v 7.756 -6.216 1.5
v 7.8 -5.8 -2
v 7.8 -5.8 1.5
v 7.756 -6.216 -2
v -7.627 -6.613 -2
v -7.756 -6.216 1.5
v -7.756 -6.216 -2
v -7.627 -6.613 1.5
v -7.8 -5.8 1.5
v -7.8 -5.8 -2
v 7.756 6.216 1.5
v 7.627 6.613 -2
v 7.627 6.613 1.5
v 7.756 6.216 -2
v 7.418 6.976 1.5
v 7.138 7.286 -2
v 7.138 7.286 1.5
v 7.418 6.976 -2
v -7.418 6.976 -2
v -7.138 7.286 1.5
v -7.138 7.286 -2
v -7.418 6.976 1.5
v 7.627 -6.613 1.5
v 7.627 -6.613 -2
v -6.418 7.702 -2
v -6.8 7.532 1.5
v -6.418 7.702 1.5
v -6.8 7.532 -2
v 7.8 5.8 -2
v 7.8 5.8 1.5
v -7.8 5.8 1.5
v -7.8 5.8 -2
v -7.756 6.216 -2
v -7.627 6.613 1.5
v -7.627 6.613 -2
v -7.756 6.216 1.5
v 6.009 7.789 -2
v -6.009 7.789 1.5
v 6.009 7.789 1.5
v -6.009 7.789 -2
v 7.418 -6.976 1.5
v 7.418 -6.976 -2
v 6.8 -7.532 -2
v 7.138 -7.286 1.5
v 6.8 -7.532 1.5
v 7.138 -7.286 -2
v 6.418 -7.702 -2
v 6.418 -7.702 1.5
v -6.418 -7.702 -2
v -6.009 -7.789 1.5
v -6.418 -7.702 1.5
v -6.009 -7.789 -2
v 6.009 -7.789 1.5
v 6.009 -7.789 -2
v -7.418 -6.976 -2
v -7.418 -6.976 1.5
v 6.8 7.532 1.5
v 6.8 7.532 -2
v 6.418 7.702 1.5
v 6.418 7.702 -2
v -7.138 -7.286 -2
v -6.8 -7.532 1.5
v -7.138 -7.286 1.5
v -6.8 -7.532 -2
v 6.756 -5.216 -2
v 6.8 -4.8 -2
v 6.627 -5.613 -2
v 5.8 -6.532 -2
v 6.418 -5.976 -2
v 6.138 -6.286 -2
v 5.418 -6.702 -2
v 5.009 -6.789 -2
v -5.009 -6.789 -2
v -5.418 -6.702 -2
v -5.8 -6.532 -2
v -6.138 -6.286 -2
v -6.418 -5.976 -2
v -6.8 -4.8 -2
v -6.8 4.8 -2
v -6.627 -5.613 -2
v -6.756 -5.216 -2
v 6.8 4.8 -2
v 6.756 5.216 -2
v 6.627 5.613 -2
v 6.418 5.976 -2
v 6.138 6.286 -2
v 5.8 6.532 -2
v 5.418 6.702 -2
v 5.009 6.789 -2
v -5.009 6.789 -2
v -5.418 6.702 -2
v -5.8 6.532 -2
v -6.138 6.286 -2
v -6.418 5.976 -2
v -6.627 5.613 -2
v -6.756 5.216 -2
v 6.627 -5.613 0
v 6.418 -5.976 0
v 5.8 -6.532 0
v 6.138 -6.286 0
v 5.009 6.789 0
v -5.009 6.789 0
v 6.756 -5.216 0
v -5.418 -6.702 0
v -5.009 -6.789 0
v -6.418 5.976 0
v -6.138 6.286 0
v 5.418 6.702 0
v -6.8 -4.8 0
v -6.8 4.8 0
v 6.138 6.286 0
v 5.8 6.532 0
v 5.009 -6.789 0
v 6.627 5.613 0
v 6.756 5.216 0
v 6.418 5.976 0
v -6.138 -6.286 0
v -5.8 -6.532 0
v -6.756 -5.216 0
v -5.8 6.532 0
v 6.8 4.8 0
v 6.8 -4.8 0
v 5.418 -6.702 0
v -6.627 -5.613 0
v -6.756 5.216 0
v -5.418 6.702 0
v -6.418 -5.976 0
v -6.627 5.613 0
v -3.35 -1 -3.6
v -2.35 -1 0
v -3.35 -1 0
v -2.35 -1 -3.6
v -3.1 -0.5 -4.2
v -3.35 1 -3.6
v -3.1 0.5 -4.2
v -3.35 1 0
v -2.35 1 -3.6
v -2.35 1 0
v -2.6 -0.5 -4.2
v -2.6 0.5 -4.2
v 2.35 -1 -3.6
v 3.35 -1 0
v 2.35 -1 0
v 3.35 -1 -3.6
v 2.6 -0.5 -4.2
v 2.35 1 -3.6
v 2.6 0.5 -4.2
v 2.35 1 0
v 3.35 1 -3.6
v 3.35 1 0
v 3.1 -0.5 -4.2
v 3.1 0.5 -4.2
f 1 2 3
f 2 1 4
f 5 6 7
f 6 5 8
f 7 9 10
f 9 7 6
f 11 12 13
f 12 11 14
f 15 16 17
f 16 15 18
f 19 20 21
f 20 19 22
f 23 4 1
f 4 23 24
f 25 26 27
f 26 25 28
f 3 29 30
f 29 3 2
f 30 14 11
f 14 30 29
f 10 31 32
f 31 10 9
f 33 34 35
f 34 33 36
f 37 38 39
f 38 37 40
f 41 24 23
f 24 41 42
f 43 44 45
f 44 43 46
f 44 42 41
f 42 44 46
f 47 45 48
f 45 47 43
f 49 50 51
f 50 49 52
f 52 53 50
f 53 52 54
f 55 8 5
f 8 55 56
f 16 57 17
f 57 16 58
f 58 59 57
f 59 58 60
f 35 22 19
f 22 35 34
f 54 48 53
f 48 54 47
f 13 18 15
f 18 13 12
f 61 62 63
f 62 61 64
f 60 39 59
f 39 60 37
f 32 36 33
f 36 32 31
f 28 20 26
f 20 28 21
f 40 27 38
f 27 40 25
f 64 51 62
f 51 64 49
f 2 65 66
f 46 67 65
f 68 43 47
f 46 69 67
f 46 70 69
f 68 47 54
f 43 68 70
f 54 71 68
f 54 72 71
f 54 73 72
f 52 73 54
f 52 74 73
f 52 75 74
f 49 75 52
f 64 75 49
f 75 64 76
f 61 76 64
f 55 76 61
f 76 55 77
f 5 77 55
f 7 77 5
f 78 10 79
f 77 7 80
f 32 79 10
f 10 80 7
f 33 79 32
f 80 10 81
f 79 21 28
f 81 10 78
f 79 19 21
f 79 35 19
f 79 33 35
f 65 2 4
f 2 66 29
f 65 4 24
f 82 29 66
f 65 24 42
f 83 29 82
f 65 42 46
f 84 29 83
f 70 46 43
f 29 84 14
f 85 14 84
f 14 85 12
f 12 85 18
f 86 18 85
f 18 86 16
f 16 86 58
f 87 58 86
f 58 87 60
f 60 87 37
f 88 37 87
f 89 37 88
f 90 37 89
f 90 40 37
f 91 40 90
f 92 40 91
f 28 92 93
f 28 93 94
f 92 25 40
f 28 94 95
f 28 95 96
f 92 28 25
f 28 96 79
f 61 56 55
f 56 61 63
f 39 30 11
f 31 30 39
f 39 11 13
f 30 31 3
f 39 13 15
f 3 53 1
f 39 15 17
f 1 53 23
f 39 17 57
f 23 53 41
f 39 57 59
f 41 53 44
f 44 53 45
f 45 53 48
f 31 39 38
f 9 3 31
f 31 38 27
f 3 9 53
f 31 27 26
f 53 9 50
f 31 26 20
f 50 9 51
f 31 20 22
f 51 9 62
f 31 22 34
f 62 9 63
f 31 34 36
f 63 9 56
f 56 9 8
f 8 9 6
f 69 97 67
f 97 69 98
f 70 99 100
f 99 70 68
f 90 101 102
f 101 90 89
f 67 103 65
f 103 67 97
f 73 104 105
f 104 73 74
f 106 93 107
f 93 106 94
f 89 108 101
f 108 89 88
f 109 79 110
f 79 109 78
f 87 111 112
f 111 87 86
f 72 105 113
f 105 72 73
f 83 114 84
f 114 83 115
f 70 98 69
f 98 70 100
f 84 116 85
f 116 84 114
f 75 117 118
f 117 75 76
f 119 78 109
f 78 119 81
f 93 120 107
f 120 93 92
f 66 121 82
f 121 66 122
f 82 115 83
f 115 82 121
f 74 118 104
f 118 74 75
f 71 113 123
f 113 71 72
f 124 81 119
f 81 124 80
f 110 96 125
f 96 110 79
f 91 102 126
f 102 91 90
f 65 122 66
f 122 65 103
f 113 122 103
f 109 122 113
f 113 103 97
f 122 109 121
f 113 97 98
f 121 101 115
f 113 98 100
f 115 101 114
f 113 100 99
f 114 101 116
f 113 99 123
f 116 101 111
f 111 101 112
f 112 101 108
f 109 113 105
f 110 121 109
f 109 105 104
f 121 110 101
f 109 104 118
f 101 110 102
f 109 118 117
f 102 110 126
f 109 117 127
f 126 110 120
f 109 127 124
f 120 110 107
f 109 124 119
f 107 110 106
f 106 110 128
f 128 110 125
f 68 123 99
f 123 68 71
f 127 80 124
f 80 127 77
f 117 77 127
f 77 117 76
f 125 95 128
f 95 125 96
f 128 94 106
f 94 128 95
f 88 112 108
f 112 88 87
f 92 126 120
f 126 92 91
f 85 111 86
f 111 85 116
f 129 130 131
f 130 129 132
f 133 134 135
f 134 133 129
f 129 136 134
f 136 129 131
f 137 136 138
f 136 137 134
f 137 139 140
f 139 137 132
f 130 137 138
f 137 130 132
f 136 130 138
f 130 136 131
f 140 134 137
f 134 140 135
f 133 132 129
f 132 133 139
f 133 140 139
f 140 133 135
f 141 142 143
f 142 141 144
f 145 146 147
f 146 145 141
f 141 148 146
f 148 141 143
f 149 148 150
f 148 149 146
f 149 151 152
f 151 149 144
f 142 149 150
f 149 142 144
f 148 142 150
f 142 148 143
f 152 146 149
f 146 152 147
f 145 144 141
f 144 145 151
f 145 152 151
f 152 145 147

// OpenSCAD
// file: ../../lib/utils.scad
// 角丸のプレート
module rounded_plate(x, y, r) {
  thickness = 0.0001;
  minkowski () {
    cube([x-r*2, y-r*2, thickness], center = true);
    cylinder(r = r, h = thickness, $fs = 0.1);
  }
}

// ベーシックなキーキャップの外観を定義
module keycap_basic_outer_shape(bottom_size, middle_size, top_size, top_height, skert_height, side_r) {
  hull () {
    translate([0, 0, top_height])
    rounded_plate(top_size, top_size, side_r);
    
    if(middle_size > 0) {
      translate([0, 0, 0])
      rounded_plate(middle_size, middle_size, side_r);
    }
    
    translate([0, 0, -skert_height])
    rounded_plate(bottom_size, bottom_size, side_r);
  }
}

// chocで使われる一般的なキーキャップの形状を定義
module keycap_basic_shape(
  top_size,
  head_height,
  middle_size,
  skert_height,
  bottom_size,
  thickness = 1.0,
  side_r = 1.0) {
  difference () {
    // 外形
    keycap_basic_outer_shape(bottom_size, middle_size, top_size, head_height, skert_height, side_r);
    // くり抜くための外形
    keycap_basic_outer_shape(bottom_size - thickness * 2, middle_size - thickness * 2, top_size - thickness * 2, 0, skert_height+0.005, side_r);
  }
}


// cylindricalな凹みを作る
module head_cylindrical_depress(top_size, top_height, depth) {
  function dish_r(w, d) = (w * w + 4 * d * d) / (8 * d);
  
  hull() {
    angle = 0;
    translate([0, 0, top_height]);
    rotate([- angle, 0, 0])
    translate([0, 0, dish_r(top_size, depth) - depth+top_height])
    rotate([90, 0, 0])
    cylinder(r = dish_r(top_size, depth), h = 60, /* 適当に十分な長さ */ center = true);
  }
}

// Generate dome sphere object
// calc r parameter on https://gist.github.com/masuidrive/b34472d82b07d0efead83aedf5579b78
module dome(width, height, r=0) {
  calc_width = 2 * sqrt(r^2 - (r - height)^2);

  if(abs(width - calc_width) > 0.1) {
    echo("><><><><><><><><><><");
    echo("WARNING: dome arguments are not correct, should be width ", calc_width);
  }

  difference(){
    translate([0, 0, height-r])
      sphere(r = r, $fn = 100);
    translate([0, 0, -r])
      cube([r*2, r*2, r*2], center = true);
  }
}

// https://qiita.com/zk_phi/items/ab99315ebaef66e84aa0
// https://bebebe.hatenablog.jp/entry/2019/06/04/232501
// https://qiita.com/zk_phi/items/ab99315ebaef66e84aa0
// file: ../../lib/choc.scad
// ChocV1の足を作る
module kailh_choc_v1_stem() {
  leg_length = 3.6;
  thin_length = 0.6;

  for (z = [-2.85, 2.85]) {
      translate([z, 0, -leg_length/2])
        hull() {
          cube([1, 2, leg_length], center=true);
          translate([0, 0, -(leg_length/2)-thin_length])
            cube([0.5, 1, 0.001], center=true);
        };
  }
}


module preview_chocv1_switch(DEBUG=true) {
  union() {
    children();

    if(DEBUG == true || DEBUG == "x") {
      translate([20, 20, 0])
      difference() {
        union() {
          children();
          difference() {
            translate([0, 0, -3.35]) import("../lib/choc_v1_switch.stl", convexity=2);
            translate([-10, -10, 0]) cube([20, 20, 20]);
          }
        }
        translate([-10, 0, -10]) cube([20, 20, 20]);
      }
    }

    if(DEBUG == true || DEBUG == "y") {
      translate([-20, -20, 0])
      difference() {
        union() {
          children();
          difference() {
            translate([0, 0, -3.35]) import("../lib/choc_v1_switch.stl", convexity=2);
            translate([-10, -10, 0]) cube([20, 20, 20]);
          }
        }
        translate([0, -10, -10]) cube([20, 20, 20]);
      }
    }
  }
}
// main file
include <../../lib/choc.scad>
include <../../lib/utils.scad>

DEBUG = false;//"x";

preview_chocv1_switch(DEBUG) {
  top_size = 15.6;
  head_height = 1.5;
  middle_size = 0;
  skert_height = 2.0; 
  bottom_size = 15.6;
  thickness = 1.0;
  side_r = 2.0;
  cylindrical_depth = 1.0;

  union() {
    keycap_basic_shape(top_size, head_height, middle_size, skert_height, bottom_size, thickness, side_r);      
    kailh_choc_v1_stem();
  }
}
